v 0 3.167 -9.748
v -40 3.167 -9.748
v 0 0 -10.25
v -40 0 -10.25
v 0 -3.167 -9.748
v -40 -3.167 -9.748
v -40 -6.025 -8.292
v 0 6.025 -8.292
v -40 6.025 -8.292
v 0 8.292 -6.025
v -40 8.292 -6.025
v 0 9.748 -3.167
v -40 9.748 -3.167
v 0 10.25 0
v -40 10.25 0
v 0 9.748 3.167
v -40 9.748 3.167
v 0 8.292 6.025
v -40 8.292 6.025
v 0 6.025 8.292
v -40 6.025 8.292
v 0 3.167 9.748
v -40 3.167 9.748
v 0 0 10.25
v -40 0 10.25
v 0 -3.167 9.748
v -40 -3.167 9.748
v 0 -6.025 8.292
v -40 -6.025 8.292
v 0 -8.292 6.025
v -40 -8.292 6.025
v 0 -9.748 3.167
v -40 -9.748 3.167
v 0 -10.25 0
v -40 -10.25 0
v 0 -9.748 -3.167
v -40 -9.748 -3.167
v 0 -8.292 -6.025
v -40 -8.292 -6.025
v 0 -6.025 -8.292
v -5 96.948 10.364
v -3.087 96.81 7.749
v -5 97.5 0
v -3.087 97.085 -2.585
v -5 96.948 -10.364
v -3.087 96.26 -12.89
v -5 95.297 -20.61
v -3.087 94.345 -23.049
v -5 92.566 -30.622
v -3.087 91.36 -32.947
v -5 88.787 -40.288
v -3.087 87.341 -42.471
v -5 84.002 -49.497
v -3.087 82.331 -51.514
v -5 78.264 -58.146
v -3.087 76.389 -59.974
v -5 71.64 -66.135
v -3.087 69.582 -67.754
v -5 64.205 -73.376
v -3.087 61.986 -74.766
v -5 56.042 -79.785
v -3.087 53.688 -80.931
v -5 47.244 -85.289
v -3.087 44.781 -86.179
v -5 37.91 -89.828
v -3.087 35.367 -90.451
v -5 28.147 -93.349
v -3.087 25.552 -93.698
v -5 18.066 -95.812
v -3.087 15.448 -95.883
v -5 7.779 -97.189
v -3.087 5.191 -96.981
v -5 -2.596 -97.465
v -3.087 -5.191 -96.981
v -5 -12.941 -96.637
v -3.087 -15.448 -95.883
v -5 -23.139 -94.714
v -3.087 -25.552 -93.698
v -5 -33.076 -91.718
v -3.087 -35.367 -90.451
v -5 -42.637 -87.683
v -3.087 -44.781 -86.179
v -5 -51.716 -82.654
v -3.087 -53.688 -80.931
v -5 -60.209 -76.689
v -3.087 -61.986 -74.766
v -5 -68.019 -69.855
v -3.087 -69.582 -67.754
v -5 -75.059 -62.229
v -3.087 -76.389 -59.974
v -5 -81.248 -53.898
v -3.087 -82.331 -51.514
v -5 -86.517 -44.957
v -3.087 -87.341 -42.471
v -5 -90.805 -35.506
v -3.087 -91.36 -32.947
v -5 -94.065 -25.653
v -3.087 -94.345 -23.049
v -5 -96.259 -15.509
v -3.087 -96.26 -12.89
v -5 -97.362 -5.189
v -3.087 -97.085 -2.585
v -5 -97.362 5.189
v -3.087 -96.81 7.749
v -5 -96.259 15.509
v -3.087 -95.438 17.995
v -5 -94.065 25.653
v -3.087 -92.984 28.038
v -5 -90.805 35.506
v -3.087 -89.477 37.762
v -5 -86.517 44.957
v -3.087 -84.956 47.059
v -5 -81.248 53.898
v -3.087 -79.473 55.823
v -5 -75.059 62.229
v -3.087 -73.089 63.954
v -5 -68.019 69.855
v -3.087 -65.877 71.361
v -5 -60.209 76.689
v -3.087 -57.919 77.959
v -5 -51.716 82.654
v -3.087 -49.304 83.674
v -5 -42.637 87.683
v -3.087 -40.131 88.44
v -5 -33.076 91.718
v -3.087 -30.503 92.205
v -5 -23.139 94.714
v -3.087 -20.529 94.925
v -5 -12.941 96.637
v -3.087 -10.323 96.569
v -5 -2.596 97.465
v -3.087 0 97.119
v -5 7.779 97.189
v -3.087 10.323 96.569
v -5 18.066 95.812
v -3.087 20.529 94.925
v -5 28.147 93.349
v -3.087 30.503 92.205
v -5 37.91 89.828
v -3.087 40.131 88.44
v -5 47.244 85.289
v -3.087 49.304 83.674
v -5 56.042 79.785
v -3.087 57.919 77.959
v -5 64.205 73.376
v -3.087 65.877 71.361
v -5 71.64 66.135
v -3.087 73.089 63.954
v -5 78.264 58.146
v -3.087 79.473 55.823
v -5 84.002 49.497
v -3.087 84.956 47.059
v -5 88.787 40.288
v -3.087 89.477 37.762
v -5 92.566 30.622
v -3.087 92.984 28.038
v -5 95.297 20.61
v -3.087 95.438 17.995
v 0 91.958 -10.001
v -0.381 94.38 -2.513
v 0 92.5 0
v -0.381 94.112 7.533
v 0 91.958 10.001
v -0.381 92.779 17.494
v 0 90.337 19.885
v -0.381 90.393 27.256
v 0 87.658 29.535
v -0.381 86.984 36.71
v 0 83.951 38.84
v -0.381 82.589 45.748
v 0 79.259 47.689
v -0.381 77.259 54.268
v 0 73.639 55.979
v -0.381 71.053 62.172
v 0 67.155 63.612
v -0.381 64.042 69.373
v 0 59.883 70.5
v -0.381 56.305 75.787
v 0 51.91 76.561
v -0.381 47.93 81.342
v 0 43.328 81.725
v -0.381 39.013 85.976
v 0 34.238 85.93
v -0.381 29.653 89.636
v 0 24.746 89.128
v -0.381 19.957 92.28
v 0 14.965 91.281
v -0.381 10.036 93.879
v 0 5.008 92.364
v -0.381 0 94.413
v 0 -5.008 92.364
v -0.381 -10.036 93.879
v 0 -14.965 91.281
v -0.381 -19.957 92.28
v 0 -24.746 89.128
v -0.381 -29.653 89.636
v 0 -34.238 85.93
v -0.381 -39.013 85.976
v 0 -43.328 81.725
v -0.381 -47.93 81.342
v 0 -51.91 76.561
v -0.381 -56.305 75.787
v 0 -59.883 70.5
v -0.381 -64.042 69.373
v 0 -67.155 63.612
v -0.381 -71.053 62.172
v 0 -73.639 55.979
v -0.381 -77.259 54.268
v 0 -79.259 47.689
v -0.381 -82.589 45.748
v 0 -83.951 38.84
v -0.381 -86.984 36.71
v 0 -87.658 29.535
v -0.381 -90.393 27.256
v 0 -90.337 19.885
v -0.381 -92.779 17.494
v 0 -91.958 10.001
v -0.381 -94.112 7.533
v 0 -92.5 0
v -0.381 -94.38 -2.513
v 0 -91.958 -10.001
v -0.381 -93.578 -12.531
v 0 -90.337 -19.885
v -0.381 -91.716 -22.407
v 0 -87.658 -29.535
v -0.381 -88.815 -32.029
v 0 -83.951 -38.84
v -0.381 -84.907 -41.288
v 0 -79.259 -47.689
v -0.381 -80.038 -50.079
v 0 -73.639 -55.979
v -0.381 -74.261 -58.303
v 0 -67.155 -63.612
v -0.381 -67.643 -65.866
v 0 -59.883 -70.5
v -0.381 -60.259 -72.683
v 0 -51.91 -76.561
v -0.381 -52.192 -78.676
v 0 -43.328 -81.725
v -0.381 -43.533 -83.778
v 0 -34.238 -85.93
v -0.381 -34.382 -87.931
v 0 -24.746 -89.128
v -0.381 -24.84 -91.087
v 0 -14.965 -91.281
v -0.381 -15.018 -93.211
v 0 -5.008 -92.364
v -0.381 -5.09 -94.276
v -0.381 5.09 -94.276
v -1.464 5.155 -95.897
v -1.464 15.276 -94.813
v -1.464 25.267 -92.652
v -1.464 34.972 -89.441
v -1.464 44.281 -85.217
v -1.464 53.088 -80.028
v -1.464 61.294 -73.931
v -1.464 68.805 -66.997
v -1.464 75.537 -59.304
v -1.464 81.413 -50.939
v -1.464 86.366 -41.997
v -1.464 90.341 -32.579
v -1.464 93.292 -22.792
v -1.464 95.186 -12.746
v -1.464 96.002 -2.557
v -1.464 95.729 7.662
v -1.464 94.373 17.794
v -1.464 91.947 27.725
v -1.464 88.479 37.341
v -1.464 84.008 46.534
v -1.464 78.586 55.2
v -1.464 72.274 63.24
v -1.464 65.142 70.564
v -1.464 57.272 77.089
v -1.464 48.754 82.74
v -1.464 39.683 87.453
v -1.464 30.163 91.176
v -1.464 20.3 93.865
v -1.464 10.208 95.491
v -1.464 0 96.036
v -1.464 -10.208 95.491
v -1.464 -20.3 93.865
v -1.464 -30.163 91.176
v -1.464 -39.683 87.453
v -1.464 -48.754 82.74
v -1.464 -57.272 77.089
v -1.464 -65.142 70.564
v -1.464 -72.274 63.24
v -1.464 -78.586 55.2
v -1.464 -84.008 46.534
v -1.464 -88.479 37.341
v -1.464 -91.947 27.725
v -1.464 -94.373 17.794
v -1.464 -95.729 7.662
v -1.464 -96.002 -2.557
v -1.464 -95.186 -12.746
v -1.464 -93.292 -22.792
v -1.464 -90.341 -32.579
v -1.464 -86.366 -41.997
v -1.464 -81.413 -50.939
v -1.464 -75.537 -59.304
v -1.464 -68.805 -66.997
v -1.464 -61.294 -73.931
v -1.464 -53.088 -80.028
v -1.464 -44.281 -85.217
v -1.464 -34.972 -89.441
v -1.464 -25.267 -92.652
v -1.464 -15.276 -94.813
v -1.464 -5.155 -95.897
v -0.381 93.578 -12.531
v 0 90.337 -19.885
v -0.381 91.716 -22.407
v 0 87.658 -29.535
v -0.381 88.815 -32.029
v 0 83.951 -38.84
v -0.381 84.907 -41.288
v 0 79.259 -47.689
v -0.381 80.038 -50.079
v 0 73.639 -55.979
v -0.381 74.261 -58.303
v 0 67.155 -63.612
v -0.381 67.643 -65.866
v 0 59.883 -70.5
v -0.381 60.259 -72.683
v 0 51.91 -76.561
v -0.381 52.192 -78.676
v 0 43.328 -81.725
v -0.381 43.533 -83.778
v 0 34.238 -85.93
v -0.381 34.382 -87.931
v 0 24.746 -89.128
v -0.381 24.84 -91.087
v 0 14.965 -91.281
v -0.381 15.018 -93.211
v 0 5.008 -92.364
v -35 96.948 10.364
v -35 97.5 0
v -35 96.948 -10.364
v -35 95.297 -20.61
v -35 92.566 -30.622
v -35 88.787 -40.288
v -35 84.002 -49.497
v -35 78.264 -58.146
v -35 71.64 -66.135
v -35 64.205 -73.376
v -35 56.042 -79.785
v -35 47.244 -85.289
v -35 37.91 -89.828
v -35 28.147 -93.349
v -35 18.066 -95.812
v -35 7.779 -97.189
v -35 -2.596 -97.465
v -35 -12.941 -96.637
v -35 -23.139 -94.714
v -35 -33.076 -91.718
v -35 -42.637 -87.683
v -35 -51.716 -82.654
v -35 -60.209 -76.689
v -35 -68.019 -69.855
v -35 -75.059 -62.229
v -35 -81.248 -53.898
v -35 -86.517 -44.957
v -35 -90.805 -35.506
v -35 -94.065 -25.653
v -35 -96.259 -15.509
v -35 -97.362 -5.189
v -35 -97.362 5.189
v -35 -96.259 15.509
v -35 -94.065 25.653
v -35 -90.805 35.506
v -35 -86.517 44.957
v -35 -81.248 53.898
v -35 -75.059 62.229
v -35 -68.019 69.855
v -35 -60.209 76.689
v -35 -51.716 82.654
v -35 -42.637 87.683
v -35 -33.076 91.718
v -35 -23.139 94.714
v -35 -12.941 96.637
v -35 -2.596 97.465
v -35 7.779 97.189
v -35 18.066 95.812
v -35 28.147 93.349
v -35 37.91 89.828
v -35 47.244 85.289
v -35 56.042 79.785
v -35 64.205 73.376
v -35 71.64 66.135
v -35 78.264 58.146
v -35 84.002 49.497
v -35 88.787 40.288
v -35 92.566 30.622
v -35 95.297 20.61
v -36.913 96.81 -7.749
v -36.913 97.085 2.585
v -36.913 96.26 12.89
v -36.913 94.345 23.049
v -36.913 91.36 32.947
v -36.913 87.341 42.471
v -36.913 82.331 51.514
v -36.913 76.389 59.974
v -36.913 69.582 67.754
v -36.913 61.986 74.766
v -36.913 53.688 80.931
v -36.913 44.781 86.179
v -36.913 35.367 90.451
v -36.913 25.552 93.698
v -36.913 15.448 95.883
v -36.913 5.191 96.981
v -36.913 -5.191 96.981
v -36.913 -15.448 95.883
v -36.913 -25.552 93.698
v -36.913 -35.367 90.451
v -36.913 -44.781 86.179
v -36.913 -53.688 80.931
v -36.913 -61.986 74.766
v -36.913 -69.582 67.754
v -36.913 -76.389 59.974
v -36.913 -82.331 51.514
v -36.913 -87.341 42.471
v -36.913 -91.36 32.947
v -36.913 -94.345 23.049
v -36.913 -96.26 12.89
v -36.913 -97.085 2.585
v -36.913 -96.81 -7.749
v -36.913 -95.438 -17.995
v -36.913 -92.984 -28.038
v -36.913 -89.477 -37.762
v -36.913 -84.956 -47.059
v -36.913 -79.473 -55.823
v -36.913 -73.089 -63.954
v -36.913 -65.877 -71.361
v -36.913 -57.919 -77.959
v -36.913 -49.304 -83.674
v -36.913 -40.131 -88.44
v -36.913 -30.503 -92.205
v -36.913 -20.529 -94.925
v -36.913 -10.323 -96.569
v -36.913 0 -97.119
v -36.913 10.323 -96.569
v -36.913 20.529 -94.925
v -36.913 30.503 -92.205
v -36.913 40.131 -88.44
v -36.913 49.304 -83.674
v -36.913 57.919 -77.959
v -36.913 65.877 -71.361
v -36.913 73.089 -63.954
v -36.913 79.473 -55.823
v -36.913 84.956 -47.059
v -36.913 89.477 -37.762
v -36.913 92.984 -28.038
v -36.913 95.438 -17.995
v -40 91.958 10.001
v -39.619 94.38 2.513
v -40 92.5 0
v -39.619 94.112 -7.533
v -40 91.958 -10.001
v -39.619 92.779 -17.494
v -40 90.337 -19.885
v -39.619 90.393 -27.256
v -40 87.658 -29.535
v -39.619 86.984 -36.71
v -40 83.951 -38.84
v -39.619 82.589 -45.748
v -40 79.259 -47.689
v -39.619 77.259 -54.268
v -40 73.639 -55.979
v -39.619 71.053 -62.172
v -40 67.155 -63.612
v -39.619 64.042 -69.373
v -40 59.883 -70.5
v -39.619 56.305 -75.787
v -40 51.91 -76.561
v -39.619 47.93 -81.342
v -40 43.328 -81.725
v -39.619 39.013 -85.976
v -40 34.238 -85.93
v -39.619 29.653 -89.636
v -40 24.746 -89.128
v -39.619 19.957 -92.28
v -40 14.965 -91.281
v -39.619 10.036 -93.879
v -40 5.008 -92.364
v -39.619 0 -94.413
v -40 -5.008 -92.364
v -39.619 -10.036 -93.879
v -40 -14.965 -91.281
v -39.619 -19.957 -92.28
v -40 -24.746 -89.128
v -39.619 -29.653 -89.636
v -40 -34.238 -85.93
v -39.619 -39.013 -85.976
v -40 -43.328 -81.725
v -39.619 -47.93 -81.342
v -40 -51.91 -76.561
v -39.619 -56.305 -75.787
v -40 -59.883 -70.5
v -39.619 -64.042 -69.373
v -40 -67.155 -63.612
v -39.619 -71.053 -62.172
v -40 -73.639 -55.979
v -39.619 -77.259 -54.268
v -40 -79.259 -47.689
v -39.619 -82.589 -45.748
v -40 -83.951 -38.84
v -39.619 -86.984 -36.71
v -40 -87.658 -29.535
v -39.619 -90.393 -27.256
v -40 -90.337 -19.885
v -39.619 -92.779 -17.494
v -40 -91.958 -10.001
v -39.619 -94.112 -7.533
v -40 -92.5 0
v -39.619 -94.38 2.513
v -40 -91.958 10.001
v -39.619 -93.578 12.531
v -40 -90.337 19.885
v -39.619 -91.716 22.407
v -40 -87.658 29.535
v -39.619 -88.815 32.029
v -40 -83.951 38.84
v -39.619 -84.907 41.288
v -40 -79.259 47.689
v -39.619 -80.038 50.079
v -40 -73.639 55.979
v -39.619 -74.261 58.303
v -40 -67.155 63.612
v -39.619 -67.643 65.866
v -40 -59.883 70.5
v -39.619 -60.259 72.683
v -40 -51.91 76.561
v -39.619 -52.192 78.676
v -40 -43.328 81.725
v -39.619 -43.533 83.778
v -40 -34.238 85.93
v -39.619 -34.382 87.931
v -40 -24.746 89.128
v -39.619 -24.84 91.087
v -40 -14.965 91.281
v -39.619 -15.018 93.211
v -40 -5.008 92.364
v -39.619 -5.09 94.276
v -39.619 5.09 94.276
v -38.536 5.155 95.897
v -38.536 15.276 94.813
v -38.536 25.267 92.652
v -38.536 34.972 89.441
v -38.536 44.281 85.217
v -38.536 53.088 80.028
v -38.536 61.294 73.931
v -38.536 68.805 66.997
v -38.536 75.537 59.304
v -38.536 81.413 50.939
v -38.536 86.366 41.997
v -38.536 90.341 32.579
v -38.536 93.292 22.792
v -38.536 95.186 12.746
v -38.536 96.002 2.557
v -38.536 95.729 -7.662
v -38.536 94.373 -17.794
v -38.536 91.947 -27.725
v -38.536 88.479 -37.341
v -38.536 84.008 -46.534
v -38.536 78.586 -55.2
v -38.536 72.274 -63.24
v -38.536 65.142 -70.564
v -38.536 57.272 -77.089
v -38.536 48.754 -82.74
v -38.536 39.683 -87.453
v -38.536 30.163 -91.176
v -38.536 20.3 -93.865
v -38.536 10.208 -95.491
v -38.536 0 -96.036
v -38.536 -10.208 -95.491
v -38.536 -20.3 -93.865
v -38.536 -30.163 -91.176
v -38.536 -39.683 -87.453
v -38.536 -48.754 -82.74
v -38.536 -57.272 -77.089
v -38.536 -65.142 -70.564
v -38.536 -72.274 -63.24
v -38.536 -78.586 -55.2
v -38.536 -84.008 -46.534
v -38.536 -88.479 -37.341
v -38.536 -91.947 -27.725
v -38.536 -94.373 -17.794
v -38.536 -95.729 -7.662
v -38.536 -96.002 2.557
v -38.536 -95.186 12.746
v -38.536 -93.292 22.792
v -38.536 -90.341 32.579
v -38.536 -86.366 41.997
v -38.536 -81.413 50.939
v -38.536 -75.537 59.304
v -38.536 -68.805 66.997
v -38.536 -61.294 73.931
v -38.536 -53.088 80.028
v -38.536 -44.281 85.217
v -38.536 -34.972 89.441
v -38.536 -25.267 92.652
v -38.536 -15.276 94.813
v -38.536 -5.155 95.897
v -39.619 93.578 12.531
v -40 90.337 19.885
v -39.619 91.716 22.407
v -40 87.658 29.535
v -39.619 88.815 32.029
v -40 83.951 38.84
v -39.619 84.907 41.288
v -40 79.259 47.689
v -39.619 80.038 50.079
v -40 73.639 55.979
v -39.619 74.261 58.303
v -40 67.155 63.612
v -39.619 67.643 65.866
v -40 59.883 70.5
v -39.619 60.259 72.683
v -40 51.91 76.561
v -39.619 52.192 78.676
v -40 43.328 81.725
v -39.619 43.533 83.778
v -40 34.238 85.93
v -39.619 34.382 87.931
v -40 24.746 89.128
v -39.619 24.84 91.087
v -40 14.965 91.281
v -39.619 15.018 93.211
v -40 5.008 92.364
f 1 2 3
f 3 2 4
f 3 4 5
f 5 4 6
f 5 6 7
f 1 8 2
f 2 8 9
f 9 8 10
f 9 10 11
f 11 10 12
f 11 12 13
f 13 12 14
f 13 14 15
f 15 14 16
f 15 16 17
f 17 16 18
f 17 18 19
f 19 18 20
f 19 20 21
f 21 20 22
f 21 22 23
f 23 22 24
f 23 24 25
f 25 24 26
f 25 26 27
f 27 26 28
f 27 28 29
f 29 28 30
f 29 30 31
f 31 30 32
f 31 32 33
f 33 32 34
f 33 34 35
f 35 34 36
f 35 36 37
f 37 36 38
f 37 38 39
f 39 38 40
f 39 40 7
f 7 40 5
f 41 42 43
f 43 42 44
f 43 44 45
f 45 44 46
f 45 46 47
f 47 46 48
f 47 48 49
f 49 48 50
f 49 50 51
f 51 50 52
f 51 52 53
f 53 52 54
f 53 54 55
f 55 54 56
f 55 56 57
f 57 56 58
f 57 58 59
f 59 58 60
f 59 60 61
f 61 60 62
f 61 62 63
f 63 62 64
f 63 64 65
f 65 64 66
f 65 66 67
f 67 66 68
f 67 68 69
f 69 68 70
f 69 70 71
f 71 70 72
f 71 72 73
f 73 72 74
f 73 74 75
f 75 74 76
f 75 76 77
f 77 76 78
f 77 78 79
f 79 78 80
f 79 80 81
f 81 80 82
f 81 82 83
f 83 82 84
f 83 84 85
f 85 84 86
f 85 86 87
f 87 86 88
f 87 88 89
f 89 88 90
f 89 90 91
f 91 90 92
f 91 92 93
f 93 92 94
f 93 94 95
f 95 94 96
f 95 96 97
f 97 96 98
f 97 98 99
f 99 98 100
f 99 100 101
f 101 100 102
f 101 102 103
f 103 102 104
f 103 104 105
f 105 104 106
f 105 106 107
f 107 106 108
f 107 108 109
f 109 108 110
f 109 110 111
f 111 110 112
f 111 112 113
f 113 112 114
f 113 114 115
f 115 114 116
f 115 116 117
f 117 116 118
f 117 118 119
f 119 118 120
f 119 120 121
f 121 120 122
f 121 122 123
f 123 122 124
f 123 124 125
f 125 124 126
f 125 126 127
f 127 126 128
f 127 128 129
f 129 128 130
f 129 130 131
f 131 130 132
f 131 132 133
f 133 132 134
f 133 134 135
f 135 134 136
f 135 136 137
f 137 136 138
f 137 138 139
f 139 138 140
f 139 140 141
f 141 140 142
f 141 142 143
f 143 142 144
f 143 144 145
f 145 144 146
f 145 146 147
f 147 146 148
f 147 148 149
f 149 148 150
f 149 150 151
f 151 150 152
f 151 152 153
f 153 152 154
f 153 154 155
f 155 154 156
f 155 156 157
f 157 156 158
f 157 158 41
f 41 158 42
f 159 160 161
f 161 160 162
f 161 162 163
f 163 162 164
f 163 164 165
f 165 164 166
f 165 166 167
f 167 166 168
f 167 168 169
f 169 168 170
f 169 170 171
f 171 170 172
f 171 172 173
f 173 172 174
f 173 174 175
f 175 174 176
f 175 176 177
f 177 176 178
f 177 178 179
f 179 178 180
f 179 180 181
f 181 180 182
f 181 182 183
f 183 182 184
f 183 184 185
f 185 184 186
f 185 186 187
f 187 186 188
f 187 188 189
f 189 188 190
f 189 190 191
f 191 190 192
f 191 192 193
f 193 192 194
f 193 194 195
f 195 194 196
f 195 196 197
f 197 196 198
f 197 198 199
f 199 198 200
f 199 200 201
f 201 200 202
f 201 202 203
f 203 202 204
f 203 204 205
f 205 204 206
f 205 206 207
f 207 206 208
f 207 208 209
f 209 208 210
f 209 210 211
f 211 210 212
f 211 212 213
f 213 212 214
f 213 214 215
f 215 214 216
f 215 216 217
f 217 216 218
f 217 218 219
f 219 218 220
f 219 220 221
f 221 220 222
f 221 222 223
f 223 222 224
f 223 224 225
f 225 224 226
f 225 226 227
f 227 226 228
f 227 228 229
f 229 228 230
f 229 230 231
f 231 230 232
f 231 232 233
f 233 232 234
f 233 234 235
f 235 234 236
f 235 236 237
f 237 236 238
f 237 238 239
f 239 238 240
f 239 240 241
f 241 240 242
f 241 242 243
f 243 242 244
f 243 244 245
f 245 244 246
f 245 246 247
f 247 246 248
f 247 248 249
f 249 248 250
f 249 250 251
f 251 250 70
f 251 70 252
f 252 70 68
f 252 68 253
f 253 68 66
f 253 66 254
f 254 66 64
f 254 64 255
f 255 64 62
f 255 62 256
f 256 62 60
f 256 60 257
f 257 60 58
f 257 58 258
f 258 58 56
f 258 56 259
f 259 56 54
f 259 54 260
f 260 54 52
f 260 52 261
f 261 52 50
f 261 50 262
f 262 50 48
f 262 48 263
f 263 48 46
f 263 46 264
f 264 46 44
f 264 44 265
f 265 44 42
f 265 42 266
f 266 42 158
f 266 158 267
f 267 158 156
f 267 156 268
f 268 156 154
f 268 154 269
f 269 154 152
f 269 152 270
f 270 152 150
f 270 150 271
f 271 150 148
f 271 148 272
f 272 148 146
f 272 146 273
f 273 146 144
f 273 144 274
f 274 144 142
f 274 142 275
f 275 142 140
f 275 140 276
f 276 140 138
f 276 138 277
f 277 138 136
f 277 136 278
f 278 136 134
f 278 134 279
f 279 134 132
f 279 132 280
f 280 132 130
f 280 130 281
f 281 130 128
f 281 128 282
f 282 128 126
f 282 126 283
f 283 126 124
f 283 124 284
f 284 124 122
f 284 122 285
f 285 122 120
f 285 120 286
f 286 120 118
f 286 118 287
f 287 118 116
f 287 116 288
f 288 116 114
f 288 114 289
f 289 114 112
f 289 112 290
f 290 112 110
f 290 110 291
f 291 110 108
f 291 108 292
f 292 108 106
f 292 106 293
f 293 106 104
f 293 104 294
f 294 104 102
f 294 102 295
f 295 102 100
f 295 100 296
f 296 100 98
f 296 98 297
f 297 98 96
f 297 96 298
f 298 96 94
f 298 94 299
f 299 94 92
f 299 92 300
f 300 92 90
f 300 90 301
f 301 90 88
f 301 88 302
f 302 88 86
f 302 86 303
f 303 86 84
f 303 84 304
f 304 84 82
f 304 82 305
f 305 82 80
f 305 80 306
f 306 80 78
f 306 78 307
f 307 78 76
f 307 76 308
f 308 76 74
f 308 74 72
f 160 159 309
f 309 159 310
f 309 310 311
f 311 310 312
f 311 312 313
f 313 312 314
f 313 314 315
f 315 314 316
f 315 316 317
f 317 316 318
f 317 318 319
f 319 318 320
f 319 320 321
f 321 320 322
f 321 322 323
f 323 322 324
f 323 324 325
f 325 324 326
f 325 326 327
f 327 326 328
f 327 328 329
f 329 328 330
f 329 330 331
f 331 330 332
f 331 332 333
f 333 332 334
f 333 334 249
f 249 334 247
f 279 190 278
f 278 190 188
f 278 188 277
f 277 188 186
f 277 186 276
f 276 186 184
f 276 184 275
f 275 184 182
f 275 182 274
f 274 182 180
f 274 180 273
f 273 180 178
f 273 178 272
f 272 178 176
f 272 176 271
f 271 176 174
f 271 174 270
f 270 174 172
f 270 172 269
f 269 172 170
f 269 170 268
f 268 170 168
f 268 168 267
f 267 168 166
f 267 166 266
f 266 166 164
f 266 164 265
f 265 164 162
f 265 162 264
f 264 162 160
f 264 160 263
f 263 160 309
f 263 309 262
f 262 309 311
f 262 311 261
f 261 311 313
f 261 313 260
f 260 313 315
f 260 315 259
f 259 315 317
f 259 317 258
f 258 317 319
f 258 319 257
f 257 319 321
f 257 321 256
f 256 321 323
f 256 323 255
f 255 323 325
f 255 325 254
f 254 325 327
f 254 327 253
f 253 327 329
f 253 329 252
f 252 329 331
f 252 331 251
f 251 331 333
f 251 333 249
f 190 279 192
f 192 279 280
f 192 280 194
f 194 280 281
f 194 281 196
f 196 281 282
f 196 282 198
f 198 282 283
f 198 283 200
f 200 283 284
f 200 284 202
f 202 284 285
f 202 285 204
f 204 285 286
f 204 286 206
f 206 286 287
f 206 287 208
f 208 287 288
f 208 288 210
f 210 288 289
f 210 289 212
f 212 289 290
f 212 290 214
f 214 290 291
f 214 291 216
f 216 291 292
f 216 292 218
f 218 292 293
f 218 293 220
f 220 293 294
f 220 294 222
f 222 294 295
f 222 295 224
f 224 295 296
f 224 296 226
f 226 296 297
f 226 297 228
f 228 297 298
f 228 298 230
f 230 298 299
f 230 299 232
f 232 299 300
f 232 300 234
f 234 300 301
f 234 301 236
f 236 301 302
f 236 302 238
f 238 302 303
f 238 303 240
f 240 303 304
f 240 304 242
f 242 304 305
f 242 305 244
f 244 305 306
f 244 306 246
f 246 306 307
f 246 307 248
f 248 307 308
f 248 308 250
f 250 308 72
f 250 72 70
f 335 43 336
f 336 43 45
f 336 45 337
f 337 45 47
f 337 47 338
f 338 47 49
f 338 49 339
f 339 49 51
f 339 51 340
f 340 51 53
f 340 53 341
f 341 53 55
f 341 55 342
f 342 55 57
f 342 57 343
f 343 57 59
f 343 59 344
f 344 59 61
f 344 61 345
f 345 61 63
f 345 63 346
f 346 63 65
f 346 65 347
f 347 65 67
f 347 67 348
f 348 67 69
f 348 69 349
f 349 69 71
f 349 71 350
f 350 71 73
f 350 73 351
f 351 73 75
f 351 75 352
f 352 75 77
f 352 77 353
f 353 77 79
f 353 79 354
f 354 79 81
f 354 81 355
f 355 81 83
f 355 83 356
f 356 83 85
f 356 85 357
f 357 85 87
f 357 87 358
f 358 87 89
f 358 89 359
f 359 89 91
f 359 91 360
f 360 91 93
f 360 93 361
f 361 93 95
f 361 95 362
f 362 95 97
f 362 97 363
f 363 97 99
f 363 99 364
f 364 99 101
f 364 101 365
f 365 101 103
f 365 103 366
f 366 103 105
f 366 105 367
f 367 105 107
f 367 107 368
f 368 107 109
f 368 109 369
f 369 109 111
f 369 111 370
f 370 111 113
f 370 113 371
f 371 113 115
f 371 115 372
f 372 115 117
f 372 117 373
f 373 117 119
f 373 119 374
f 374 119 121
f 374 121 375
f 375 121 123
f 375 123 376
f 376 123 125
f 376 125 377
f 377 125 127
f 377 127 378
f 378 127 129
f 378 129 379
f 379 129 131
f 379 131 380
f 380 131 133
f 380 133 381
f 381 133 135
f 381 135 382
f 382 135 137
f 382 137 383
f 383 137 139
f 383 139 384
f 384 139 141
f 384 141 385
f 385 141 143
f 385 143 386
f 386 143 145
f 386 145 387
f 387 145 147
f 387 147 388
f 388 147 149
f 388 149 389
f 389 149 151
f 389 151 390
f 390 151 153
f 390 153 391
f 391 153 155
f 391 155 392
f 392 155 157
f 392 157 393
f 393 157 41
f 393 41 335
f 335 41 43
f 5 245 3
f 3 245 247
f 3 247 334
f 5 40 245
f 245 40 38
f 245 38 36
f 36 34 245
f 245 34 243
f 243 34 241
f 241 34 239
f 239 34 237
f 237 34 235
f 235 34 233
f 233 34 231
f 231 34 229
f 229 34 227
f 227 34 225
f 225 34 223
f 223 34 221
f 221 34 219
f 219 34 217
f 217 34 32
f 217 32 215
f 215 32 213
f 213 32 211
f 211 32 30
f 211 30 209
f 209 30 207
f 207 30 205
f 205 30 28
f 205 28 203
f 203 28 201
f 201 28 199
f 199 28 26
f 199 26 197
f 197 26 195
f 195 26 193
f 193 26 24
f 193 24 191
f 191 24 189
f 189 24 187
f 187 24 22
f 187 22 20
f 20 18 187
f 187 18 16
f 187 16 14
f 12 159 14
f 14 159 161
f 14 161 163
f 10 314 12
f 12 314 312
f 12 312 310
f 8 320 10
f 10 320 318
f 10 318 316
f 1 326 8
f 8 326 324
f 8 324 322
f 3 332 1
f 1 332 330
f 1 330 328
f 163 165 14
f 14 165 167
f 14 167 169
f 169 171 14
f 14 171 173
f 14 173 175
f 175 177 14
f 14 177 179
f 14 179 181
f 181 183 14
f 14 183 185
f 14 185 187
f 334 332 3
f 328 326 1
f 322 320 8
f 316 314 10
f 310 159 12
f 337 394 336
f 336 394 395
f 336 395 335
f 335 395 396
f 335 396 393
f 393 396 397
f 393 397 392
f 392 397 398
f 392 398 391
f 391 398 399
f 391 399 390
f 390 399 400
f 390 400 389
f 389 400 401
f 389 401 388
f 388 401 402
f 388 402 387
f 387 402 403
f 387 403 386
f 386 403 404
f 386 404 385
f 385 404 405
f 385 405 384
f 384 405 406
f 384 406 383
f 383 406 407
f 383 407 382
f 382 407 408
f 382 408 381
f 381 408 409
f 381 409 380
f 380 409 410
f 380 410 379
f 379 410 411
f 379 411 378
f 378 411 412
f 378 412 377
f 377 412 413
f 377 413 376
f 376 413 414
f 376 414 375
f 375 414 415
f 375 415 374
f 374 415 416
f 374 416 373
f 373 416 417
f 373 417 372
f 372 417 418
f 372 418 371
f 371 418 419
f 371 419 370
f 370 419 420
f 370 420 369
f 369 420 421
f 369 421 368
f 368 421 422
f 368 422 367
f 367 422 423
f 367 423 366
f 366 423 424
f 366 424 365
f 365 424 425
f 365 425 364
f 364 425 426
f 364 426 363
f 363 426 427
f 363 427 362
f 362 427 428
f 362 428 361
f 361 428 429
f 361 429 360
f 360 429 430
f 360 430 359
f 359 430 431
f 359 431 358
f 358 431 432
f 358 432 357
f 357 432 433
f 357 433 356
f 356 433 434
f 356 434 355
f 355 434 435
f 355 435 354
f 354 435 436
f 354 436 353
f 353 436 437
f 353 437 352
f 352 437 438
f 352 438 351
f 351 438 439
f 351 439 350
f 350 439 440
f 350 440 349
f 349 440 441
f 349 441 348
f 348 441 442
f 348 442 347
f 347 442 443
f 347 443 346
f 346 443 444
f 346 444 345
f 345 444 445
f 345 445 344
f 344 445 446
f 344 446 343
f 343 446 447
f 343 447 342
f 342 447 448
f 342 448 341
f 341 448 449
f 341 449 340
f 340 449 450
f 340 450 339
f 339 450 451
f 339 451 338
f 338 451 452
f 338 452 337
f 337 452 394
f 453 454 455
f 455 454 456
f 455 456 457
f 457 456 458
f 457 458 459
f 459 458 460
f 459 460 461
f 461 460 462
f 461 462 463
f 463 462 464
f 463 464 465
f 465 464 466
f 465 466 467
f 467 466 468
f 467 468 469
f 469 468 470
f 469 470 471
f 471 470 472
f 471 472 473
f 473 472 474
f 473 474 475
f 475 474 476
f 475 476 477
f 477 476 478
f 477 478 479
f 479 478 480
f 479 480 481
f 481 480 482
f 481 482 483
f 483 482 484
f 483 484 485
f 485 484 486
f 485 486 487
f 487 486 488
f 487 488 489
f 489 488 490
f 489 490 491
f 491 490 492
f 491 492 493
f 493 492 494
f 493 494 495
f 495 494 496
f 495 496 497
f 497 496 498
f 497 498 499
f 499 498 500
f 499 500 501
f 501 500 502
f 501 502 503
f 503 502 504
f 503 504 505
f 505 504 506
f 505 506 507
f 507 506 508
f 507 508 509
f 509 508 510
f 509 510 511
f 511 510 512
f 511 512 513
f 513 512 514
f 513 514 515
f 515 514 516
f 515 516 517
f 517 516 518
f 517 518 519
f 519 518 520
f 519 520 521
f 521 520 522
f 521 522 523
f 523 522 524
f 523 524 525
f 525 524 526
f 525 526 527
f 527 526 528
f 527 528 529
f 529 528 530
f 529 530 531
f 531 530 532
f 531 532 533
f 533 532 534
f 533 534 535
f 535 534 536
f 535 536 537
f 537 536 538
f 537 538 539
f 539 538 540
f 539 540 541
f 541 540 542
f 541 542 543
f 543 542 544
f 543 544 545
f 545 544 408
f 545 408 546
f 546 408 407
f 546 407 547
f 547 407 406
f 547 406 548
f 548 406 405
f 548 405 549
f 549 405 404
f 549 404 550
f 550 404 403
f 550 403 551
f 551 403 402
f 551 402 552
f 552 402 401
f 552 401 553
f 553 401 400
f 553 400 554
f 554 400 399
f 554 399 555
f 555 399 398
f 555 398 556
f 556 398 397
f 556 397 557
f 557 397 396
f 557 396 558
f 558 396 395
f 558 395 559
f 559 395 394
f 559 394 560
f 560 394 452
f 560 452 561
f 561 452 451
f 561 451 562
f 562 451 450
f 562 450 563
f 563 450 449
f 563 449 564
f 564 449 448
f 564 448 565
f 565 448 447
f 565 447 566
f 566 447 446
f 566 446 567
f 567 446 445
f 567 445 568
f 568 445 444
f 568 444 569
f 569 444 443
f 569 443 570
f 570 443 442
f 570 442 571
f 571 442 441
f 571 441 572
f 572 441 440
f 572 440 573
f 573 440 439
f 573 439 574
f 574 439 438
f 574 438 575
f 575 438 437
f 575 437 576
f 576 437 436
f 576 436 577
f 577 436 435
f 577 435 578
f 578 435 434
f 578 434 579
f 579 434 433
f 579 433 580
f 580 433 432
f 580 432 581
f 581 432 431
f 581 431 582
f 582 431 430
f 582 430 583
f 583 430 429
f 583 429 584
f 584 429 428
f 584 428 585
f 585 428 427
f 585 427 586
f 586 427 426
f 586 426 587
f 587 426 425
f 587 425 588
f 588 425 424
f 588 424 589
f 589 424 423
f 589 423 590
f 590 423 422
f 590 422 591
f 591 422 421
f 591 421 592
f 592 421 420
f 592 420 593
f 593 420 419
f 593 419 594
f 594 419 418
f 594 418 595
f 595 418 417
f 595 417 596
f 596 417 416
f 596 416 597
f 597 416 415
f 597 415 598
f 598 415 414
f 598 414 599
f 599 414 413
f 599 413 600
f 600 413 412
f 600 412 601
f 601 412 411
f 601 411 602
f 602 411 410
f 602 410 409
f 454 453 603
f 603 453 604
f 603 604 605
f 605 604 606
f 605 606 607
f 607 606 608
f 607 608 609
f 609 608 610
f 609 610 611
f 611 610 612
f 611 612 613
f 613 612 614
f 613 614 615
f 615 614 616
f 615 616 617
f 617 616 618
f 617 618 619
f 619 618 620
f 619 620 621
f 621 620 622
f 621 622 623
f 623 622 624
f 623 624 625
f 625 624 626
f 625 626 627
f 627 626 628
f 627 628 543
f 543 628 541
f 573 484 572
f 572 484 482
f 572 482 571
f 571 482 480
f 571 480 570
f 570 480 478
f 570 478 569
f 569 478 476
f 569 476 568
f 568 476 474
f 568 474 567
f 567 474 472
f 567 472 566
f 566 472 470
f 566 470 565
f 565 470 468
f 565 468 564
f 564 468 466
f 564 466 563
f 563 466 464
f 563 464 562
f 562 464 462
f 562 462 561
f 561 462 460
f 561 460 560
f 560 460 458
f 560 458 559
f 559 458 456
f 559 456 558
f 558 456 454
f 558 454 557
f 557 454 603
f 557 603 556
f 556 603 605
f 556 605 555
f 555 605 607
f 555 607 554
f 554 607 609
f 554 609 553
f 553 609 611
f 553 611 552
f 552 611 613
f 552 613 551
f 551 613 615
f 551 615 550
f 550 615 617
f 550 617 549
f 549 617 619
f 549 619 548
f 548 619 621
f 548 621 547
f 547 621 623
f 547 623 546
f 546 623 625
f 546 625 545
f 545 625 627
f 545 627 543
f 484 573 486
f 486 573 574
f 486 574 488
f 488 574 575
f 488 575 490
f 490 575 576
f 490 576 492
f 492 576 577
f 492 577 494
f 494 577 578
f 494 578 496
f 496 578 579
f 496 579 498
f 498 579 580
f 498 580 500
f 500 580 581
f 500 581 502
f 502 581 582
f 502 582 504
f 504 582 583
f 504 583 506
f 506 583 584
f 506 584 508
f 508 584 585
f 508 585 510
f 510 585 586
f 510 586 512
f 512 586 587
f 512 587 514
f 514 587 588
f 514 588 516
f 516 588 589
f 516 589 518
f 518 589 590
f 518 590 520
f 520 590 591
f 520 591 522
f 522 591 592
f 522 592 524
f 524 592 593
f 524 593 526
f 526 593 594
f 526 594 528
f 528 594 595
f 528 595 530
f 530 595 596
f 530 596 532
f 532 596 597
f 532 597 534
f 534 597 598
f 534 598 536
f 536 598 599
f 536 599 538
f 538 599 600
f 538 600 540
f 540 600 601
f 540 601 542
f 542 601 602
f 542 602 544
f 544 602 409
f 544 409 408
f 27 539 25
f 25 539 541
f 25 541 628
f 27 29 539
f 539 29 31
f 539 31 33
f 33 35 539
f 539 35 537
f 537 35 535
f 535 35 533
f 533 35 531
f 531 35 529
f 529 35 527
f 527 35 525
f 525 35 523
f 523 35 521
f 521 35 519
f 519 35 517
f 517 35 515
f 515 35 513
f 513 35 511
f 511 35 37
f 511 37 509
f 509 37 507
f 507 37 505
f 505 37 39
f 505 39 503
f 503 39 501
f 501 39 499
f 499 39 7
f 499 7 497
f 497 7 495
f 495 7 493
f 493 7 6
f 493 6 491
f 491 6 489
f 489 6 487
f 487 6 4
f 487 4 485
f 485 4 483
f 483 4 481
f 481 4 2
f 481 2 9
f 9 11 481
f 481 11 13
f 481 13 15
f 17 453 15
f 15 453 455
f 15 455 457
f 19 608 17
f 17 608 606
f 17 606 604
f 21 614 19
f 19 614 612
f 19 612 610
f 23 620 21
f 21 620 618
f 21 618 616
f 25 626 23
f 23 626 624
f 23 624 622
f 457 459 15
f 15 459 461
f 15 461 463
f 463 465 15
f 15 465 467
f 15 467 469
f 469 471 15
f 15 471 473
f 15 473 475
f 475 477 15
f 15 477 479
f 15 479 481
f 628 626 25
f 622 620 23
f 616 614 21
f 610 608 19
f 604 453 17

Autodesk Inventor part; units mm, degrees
ref_plane "XZ Plane" through (0, 0, 0) normal (0, 1, 0) x (-1, 0, 0)
ref_plane "XY Plane" through (0, 0, 0) normal (0, 0, 1) x (1, 0, 0)
sketch "Boceto1" plane through (0, 0, 0) normal (1, 0, 0) x (0, 1, 0)
  circle A0 centre (0, 0) radius 97.5
  dimension "d0" = 195
extrude "Extrusión1" add sketch "Boceto1" against normal blind 40
fillet "Empalme1" radius 5 2 edges at (-40, -97.5, 0) (0, -97.5, 0)
sketch "Boceto2" plane through (-40, 0, 0) normal (-1, 0, 0) x (0, 0, 1)
  circle A0 centre (0, 0) radius 10.25
  dimension "d4" = 20.5
extrude "Extrusión2" cut sketch "Boceto2" against normal up to surface (40 mm away)
properties part number "wheel_right_link"
